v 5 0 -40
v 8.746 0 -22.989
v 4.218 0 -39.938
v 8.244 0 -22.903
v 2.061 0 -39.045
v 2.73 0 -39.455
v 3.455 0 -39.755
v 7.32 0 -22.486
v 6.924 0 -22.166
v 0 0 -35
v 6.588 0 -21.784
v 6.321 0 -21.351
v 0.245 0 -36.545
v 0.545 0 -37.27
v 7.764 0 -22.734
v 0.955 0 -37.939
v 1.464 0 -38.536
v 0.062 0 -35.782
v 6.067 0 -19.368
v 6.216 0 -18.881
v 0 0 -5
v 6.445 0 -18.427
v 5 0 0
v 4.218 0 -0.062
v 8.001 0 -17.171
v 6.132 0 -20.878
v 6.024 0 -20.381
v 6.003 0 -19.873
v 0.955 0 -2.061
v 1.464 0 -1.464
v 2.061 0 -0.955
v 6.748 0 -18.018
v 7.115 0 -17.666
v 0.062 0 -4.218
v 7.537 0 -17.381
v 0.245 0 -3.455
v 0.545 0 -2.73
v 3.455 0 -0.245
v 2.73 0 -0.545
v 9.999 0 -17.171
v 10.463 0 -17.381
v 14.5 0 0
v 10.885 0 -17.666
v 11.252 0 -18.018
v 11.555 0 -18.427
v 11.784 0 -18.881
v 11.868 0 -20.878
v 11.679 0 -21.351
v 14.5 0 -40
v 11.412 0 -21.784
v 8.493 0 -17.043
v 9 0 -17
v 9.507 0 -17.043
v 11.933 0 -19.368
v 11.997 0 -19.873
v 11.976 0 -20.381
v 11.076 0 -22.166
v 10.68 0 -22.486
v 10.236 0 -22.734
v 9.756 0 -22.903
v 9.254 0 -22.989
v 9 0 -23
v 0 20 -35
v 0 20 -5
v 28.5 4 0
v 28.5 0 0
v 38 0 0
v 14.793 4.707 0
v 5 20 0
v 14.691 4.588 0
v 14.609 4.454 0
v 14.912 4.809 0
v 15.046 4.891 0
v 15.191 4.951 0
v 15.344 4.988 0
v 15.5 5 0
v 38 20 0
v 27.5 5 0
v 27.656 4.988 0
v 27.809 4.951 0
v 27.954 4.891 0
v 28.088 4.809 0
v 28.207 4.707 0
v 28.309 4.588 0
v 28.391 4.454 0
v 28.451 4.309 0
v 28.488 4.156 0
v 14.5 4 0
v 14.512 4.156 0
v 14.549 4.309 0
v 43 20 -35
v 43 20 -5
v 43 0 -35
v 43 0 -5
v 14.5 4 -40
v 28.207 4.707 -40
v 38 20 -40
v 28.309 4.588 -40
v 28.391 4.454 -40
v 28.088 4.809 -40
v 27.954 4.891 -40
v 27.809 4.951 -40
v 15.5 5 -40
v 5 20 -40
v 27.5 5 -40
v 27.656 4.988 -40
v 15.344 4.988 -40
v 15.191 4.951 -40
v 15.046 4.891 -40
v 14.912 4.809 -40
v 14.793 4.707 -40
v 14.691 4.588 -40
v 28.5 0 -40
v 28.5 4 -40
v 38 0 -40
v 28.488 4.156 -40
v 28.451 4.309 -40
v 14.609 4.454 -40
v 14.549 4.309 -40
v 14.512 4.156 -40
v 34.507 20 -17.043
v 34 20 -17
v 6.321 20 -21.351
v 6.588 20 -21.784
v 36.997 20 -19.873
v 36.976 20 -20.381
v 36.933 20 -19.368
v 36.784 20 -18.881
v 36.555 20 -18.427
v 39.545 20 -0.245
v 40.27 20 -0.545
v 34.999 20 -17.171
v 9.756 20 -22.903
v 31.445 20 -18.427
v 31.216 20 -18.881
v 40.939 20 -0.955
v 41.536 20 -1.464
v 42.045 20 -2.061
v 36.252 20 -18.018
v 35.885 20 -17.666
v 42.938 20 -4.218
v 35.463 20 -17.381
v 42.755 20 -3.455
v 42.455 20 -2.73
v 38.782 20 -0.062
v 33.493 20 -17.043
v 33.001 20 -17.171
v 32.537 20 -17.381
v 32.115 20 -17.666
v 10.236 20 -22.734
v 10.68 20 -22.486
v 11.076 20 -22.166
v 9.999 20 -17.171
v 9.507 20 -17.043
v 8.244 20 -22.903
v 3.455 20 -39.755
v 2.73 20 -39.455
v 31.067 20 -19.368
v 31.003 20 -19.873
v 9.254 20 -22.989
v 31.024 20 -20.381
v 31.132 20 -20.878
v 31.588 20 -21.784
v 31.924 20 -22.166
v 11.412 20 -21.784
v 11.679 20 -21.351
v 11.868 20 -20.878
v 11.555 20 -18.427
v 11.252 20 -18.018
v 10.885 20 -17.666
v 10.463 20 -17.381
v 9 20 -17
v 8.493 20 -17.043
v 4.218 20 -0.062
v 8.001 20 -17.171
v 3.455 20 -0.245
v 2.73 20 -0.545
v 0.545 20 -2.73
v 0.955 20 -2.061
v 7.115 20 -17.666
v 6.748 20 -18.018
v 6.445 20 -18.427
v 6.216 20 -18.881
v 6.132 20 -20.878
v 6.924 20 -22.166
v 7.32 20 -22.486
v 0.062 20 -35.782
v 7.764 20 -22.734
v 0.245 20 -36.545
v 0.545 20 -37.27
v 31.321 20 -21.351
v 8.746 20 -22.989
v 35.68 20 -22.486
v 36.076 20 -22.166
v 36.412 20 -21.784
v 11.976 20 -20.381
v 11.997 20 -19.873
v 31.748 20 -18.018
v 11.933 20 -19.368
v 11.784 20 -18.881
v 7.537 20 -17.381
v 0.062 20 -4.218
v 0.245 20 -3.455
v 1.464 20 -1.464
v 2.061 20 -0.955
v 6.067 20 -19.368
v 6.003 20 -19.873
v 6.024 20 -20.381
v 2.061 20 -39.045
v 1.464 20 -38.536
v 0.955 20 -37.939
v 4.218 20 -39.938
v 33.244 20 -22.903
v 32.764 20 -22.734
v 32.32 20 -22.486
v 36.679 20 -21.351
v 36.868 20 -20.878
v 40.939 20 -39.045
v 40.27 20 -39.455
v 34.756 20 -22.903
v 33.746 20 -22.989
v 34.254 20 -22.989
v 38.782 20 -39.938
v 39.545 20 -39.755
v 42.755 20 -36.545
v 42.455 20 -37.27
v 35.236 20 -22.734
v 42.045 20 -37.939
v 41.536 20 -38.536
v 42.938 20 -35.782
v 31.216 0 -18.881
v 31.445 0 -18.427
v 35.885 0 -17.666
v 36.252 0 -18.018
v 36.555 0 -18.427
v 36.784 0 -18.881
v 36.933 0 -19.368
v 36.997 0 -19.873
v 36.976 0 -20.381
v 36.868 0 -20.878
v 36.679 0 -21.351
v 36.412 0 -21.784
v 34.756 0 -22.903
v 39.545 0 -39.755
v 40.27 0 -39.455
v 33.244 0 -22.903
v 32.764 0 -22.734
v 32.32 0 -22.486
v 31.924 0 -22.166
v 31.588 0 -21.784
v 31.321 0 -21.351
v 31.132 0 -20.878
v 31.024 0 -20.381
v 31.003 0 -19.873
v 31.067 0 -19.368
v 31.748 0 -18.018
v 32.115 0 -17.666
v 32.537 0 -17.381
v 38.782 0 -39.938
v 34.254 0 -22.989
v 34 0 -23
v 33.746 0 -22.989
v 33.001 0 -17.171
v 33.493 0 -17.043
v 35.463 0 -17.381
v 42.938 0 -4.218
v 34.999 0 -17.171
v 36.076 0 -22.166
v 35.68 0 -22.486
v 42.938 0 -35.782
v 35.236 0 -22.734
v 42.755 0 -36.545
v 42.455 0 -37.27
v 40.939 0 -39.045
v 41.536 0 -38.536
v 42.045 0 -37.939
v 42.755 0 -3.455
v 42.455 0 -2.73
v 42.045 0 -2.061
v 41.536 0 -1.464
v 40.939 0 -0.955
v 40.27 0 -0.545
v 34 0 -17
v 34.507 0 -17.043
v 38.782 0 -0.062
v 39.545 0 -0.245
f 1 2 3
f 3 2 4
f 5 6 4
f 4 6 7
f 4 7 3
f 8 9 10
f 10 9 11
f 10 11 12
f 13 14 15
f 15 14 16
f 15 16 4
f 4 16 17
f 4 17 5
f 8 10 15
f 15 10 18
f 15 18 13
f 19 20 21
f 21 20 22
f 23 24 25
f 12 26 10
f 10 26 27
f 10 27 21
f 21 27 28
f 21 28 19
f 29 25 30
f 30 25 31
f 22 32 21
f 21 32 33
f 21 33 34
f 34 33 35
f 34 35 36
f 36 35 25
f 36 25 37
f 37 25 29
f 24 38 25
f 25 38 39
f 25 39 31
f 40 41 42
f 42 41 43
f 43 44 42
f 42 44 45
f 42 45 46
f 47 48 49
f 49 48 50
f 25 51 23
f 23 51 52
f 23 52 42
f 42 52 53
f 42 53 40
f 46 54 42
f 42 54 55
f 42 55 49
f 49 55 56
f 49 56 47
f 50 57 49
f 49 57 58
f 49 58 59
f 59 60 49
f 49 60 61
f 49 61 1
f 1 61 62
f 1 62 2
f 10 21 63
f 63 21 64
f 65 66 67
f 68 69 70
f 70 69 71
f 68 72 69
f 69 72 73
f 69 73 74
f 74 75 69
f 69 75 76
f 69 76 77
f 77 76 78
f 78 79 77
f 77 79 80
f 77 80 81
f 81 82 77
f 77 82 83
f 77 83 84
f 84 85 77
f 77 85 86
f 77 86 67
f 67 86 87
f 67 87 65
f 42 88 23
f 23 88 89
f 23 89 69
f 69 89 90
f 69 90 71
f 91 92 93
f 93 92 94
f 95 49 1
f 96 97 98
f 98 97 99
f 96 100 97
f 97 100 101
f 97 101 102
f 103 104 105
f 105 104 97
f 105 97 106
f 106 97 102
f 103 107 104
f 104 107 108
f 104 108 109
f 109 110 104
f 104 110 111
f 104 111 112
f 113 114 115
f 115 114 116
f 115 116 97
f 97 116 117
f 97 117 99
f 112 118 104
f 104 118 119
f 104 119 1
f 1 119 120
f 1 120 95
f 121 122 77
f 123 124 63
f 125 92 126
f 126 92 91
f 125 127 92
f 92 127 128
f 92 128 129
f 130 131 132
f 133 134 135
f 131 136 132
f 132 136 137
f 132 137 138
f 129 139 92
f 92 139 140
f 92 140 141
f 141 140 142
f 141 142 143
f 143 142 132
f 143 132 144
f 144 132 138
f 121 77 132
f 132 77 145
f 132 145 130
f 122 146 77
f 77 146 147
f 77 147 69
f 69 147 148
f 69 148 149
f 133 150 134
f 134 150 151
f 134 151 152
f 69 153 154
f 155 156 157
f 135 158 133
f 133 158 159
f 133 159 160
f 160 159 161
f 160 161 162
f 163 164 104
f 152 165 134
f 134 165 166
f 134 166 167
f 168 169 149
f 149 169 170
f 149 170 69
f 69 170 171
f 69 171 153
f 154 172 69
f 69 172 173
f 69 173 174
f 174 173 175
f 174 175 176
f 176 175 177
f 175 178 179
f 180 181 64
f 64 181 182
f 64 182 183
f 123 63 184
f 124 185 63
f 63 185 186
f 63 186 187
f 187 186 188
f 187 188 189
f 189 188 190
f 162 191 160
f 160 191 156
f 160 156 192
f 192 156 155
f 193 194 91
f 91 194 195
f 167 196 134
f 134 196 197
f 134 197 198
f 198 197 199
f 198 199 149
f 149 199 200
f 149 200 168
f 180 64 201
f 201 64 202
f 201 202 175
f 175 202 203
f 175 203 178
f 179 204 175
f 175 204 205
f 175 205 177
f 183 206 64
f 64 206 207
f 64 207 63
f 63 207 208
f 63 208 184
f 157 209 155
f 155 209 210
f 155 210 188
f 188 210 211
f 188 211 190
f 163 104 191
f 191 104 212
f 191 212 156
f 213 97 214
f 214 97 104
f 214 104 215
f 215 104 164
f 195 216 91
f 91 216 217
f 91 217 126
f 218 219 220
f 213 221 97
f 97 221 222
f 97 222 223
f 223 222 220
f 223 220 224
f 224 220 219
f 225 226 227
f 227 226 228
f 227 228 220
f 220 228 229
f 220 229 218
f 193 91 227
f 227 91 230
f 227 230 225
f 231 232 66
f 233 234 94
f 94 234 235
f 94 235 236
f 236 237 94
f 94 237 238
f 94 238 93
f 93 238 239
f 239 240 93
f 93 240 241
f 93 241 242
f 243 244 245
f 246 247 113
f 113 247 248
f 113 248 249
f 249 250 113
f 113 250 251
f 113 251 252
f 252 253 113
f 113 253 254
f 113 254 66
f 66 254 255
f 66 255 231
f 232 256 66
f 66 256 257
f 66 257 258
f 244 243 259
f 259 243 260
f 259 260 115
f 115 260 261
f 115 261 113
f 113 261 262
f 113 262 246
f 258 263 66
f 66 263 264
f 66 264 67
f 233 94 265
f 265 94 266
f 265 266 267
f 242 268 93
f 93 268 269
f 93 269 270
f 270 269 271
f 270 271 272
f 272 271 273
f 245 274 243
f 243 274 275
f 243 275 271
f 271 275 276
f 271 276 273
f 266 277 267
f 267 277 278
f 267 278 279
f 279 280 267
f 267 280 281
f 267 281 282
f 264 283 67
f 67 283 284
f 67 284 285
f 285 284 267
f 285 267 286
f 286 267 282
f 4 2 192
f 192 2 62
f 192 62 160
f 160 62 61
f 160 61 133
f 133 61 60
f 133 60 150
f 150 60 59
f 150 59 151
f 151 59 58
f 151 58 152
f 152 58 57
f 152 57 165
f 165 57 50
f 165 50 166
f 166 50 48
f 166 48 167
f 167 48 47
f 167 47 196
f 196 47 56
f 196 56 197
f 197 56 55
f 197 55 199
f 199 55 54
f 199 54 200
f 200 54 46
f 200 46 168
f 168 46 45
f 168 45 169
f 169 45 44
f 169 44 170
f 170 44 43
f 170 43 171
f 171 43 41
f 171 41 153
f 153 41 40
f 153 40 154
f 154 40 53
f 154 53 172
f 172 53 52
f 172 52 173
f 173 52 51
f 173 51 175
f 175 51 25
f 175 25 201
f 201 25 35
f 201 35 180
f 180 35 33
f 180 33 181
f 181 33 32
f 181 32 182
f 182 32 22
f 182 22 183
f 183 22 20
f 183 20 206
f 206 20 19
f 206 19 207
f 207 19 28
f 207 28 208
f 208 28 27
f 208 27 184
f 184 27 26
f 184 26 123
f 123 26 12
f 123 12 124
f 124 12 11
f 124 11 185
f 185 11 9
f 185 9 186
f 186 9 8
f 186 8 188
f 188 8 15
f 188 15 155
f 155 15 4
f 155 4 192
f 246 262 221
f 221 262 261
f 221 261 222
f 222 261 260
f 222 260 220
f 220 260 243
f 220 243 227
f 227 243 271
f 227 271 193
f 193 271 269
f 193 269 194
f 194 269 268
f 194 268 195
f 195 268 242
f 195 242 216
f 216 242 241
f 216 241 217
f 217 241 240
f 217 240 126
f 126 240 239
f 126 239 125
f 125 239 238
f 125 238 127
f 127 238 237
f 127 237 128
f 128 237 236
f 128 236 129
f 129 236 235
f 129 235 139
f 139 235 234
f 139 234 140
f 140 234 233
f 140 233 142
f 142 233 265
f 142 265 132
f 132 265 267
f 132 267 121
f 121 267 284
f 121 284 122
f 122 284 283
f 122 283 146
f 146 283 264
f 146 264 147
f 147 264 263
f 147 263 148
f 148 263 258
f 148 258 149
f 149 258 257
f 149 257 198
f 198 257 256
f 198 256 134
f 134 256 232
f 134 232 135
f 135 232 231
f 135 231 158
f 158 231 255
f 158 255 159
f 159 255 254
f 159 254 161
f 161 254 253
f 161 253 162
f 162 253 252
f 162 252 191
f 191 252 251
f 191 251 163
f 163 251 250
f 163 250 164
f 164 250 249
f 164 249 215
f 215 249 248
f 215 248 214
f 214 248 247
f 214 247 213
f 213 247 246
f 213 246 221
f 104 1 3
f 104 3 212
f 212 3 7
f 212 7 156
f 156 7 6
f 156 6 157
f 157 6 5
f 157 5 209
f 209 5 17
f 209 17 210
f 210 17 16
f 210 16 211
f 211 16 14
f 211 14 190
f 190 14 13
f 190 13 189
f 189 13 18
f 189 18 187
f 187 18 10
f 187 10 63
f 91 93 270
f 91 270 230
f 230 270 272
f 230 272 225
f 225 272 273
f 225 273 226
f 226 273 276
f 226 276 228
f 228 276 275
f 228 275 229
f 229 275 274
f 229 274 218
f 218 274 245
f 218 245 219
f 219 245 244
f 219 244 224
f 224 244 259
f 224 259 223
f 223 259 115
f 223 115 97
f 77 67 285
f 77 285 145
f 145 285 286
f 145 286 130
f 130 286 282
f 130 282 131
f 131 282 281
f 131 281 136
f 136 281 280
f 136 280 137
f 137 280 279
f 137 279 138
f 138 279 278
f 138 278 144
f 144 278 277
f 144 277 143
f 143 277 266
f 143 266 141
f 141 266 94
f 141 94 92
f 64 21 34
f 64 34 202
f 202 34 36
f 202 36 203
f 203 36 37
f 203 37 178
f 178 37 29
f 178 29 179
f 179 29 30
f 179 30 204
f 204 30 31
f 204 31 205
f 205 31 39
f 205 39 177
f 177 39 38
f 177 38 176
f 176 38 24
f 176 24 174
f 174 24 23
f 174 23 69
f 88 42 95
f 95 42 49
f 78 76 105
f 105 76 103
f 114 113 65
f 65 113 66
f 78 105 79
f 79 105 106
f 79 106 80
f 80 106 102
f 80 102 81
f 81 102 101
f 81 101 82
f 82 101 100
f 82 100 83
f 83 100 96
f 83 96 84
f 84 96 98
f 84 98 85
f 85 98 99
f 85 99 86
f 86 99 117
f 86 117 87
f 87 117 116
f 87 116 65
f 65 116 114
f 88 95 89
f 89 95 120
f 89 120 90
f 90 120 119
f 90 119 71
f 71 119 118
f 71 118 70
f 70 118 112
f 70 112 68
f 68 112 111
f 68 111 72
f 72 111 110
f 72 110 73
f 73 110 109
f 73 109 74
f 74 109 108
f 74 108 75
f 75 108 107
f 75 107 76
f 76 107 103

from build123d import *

# Parameters (mm, degrees)
SKETCH1_W           = 43
SKETCH1_H           = 40
BOSS_EXTRUDE1_DEPTH = 20
CUT_EXTRUDE1_REACH  = 64.04
SKETCH2_R           = 3
FILLET1_R           = 5
CUT_EXTRUDE2_REACH  = 64.04
SKETCH3_W           = 14
SKETCH3_H           = 5
FILLET2_R           = 1


with BuildPart() as part:
    # Sketch1 → Boss-Extrude1 (new body)
    with BuildSketch(Plane(origin=(0, 0, 0), x_dir=(1, 0, 0), z_dir=(0, 1, 0))):
        with Locations((21.5, 20)):
            Rectangle(SKETCH1_W, SKETCH1_H)
    extrude(amount=BOSS_EXTRUDE1_DEPTH)

    # Sketch2 → Cut-Extrude1 (cut, up to next)
    with BuildSketch(Plane(origin=(0, 20, 0), x_dir=(1, 0, 0), z_dir=(0, 1, 0)), mode=Mode.PRIVATE) as cut_extrude1_sk1:
        with Locations(Location((9, 20, 0), (0, 0, 270))):
            Circle(SKETCH2_R)
    cut_extrude1_tool1 = extrude(cut_extrude1_sk1.sketch, amount=-CUT_EXTRUDE1_REACH, mode=Mode.PRIVATE) & part.part
    # Sketch2 → Cut-Extrude1 (cut, up to next)
    with BuildSketch(Plane(origin=(0, 20, 0), x_dir=(1, 0, 0), z_dir=(0, 1, 0)), mode=Mode.PRIVATE) as cut_extrude1_sk2:
        with Locations(Location((34, 20, 0), (0, 0, 270))):
            Circle(SKETCH2_R)
    cut_extrude1_tool2 = extrude(cut_extrude1_sk2.sketch, amount=-CUT_EXTRUDE1_REACH, mode=Mode.PRIVATE) & part.part
    add(cut_extrude1_tool1.solids().sort_by_distance((9, 20, -20))[0], mode=Mode.SUBTRACT)
    add(cut_extrude1_tool2.solids().sort_by_distance((34, 20, -20))[0], mode=Mode.SUBTRACT)

    # Fillet1
    fillet1_edges = [part.edges().sort_by_distance(p)[0] for p in [
        (0, 10, -40),
        (43, 10, -40),
        (43, 10, 0),
        (0, 10, 0),
    ]]
    fillet(fillet1_edges, radius=FILLET1_R)

    # Sketch3 → Cut-Extrude2 (cut, up to next)
    with BuildSketch(Plane.XY, mode=Mode.PRIVATE) as cut_extrude2_sk1:
        with Locations((21.5, 2.5)):
            Rectangle(SKETCH3_W, SKETCH3_H)
    cut_extrude2_tool1 = extrude(cut_extrude2_sk1.sketch, amount=-CUT_EXTRUDE2_REACH, mode=Mode.PRIVATE) & part.part
    add(cut_extrude2_tool1.solids().sort_by_distance((21.5, 2.5, 0))[0], mode=Mode.SUBTRACT)

    # Fillet2
    fillet2_edges = [part.edges().sort_by_distance(p)[0] for p in [
        (14.5, 5, -20),
        (28.5, 5, -20),
    ]]
    fillet(fillet2_edges, radius=FILLET2_R)


solid = part.part
